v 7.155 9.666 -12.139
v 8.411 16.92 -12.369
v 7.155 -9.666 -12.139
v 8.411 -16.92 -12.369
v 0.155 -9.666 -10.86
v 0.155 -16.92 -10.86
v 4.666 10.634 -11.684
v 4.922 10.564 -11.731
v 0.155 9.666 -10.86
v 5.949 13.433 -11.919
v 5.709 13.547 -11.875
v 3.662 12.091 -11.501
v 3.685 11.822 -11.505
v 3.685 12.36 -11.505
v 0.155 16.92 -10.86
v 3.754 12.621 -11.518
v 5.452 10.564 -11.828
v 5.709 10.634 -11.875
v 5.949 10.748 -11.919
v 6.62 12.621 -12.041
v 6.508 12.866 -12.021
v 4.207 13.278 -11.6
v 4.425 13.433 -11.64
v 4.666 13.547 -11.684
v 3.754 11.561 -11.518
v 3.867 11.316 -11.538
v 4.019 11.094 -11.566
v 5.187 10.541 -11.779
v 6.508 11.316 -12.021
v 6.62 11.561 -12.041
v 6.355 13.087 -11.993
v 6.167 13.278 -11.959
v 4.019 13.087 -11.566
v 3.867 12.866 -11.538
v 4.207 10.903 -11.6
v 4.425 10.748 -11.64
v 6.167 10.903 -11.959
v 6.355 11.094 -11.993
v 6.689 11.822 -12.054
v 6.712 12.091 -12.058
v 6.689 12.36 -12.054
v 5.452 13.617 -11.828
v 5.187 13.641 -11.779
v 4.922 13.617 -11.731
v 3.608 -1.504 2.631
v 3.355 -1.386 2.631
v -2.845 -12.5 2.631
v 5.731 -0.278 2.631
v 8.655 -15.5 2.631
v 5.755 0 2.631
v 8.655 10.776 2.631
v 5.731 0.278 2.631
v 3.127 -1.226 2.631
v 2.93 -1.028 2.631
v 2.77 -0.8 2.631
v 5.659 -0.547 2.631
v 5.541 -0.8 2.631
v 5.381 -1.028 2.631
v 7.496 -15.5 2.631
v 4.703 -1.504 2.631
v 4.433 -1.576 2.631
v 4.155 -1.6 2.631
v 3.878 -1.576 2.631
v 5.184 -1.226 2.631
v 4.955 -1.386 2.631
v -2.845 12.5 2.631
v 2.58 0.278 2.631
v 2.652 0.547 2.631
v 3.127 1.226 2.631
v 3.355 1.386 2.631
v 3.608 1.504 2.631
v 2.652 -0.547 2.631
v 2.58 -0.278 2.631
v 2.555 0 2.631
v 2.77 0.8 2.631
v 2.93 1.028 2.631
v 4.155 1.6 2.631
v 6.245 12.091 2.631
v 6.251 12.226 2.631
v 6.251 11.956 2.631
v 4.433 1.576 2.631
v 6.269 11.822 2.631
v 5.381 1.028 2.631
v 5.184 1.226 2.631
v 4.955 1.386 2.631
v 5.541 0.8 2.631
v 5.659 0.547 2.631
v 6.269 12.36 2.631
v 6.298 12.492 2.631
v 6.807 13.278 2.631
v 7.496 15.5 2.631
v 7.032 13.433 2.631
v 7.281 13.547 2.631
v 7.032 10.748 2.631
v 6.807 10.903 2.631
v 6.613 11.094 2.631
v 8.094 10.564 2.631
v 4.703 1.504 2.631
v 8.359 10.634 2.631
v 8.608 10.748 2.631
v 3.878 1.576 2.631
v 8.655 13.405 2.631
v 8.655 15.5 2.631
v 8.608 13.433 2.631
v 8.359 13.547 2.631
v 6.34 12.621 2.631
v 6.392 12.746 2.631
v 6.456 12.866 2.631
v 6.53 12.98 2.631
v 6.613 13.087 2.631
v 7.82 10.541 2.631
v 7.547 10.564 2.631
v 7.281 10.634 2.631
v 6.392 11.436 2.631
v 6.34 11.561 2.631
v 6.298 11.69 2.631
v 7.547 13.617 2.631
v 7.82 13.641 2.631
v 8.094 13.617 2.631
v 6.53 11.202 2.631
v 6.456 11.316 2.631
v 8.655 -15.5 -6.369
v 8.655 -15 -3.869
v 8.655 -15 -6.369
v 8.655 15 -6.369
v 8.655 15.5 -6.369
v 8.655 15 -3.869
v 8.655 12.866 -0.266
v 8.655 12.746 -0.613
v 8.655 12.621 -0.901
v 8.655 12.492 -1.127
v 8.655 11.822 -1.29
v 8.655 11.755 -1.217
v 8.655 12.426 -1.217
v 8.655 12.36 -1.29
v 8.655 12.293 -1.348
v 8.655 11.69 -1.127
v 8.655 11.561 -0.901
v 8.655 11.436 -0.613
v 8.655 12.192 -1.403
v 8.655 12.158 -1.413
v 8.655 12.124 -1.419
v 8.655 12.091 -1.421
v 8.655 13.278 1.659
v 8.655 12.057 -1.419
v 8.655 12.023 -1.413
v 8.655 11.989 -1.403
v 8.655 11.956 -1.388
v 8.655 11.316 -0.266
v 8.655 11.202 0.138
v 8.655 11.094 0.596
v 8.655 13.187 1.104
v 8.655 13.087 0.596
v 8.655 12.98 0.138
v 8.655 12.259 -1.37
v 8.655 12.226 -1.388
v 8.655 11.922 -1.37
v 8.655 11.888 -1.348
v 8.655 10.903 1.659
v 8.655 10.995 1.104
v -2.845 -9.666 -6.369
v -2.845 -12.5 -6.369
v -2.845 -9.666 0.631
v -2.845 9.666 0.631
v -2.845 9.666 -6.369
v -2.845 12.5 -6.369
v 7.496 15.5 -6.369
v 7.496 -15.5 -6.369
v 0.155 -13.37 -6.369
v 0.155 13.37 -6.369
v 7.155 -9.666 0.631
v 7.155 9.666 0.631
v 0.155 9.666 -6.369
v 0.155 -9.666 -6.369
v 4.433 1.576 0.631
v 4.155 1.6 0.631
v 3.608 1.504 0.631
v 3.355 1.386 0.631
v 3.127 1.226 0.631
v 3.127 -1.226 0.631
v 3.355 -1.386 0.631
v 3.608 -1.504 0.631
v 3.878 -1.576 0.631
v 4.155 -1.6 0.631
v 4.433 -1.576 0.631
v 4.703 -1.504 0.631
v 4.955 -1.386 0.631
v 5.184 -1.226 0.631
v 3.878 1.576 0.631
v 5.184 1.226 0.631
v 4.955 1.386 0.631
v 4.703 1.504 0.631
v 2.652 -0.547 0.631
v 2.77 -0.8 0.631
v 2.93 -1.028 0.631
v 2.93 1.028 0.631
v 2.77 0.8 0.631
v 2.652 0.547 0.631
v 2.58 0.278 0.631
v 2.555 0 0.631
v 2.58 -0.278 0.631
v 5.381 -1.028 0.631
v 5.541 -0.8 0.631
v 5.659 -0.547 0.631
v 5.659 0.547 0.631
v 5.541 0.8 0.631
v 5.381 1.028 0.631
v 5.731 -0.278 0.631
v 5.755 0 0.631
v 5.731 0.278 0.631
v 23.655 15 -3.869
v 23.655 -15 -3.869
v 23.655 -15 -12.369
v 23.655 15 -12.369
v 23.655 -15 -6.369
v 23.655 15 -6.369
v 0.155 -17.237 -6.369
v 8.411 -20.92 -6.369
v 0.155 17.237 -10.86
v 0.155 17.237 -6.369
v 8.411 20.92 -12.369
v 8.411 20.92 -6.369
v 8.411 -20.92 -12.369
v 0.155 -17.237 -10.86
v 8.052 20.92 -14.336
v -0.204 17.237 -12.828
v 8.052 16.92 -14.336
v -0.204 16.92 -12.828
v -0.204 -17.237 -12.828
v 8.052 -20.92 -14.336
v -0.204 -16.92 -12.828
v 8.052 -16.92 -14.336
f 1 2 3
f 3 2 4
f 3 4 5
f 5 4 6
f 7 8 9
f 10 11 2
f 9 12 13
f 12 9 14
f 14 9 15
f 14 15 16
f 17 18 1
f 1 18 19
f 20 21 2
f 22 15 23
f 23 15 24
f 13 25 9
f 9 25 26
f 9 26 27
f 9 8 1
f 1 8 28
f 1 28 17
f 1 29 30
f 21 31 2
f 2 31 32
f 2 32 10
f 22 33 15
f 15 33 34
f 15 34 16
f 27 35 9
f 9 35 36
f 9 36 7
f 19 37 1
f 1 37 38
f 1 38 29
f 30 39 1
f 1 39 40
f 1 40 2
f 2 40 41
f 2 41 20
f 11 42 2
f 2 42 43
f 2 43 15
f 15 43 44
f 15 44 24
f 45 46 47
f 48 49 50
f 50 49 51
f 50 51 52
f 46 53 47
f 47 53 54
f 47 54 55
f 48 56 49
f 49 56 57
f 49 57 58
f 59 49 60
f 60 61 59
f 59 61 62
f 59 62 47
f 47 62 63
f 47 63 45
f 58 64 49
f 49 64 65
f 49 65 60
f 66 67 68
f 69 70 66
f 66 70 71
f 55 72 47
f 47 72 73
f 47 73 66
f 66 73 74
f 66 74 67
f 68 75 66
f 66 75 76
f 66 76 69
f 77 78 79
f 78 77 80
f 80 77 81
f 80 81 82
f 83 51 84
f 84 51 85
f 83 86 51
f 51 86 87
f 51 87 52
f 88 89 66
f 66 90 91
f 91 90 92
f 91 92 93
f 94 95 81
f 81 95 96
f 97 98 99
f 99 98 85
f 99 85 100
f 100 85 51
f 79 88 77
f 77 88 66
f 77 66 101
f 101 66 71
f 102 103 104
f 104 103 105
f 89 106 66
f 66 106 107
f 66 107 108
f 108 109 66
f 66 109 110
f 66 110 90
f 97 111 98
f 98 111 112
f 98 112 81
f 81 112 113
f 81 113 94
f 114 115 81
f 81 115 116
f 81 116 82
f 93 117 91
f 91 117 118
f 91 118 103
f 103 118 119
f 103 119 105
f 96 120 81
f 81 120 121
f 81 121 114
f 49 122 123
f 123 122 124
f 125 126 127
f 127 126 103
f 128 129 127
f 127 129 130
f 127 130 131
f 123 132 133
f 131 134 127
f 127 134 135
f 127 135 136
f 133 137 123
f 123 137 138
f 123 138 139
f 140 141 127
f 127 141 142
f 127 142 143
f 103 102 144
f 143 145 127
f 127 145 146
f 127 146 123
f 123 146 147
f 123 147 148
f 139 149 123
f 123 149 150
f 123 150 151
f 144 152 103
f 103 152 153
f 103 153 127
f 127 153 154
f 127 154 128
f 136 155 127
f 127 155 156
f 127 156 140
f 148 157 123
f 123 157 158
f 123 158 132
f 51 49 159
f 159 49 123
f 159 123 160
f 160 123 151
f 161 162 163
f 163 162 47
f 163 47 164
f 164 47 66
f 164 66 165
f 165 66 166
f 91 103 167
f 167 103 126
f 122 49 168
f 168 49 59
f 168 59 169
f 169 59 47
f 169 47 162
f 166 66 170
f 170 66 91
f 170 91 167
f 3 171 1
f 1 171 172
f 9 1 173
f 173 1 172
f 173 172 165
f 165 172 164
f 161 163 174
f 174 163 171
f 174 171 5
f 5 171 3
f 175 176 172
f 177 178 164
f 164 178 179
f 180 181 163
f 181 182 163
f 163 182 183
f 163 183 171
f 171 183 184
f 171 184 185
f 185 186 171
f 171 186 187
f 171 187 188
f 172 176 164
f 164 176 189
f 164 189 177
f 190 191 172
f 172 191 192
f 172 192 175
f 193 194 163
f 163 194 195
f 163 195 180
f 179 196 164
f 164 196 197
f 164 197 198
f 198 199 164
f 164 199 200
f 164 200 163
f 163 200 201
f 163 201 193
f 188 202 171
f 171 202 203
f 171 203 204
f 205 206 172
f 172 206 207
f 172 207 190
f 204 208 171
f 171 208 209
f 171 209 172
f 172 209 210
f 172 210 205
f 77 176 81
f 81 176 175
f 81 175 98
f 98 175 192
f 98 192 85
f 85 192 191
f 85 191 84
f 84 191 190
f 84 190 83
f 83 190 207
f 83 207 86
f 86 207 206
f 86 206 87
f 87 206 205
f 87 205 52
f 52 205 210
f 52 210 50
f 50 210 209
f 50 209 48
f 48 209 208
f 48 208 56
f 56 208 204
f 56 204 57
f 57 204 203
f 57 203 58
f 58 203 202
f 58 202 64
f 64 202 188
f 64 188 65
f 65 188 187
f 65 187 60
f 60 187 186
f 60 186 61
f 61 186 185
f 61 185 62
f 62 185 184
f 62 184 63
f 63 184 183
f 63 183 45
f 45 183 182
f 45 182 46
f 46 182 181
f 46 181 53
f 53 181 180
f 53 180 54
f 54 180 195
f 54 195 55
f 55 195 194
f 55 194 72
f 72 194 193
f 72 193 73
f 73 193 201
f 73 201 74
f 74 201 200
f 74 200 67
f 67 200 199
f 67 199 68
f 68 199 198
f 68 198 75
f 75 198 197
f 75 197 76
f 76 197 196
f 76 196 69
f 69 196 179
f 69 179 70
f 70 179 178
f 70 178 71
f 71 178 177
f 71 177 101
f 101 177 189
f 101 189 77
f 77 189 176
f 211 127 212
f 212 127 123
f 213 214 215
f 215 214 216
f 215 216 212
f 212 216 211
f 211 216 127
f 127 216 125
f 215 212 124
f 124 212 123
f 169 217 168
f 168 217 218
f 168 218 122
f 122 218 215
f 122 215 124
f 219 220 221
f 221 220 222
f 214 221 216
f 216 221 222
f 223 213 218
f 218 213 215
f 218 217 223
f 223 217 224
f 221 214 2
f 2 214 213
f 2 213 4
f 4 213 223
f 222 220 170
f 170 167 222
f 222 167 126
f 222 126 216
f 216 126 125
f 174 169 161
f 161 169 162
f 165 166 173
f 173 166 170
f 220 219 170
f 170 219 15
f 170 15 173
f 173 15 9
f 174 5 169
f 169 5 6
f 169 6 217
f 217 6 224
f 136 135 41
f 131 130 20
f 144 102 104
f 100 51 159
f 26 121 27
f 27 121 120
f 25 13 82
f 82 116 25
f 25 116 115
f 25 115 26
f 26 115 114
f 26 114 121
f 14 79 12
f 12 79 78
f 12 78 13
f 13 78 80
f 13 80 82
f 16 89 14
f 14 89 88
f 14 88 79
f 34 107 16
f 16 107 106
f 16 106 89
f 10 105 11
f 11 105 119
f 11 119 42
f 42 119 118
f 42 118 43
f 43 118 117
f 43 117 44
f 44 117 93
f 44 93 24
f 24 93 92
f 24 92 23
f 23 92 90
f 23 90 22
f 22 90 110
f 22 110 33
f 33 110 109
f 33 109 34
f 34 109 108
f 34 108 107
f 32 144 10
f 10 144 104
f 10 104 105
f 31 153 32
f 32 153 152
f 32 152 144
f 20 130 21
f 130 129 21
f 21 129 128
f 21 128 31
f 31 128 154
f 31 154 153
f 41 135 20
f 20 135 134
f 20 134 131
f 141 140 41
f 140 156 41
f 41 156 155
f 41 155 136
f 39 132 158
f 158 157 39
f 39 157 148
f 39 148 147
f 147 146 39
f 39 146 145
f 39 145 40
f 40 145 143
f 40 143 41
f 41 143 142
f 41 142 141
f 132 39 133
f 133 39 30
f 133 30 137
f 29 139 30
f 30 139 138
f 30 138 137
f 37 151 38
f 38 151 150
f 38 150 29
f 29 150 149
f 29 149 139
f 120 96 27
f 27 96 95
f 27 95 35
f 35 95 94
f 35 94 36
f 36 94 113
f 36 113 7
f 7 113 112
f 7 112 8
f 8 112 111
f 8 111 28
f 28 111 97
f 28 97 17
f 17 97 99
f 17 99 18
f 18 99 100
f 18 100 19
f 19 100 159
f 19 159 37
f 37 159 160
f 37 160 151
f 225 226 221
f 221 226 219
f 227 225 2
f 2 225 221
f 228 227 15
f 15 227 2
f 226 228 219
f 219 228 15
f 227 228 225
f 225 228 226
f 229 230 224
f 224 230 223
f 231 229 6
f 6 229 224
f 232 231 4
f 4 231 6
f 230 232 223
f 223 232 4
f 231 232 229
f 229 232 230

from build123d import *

# Parameters (mm, degrees)
SKETCH_1_W          = 11.5
SKETCH_1_H          = 9
EXTRUDE_1_DEPTH     = 15.5
CUT_EXTRUDE_1_REACH = 21.904
CUT_EXTRUDE_3_DEPTH = 10
SKETCH_7_R          = 1.6
CUT_EXTRUDE_4_DEPTH = 3.2
SKETCH_9_W          = 15
SKETCH_9_H          = 2.5
EXTRUDE_2_DEPTH     = 15
EXTRUDE_3_DEPTH     = 6
CUT_EXTRUDE_5_DEPTH = 25
SKETCH_12_R         = 1.55
CUT_EXTRUDE_6_DEPTH = 50
EXTRUDE_4_DEPTH     = 2


with BuildPart() as part:
    # 草图1 → 凸台-拉伸1 (new, symmetric)
    with BuildSketch(Plane(origin=(0, 0, 0), x_dir=(1, 0, 0), z_dir=(0, 1, 0))):
        with Locations((2.905437314, 1.868632411)):
            Rectangle(SKETCH_1_W, SKETCH_1_H)
    extrude(amount=EXTRUDE_1_DEPTH, both=True)

    # 草图3 → 切除-拉伸1 (cut, up to next)
    with BuildSketch(Plane.XY.offset(2.631367589), mode=Mode.PRIVATE) as cut_extrude_1_sk1:
        Polygon((-2.844562686, 15.5), (-2.844562686, 12.5), (7.496374606, 15.5), align=None)
    cut_extrude_1_tool1 = extrude(cut_extrude_1_sk1.sketch, amount=-CUT_EXTRUDE_1_REACH, mode=Mode.PRIVATE) & part.part
    # 草图3 → 切除-拉伸1 (cut, up to next)
    with BuildSketch(Plane.XY.offset(2.631367589), mode=Mode.PRIVATE) as cut_extrude_1_sk2:
        Polygon((7.496374606, -15.5), (-2.844562686, -15.5), (-2.844562686, -12.5), align=None)
    cut_extrude_1_tool2 = extrude(cut_extrude_1_sk2.sketch, amount=-CUT_EXTRUDE_1_REACH, mode=Mode.PRIVATE) & part.part
    add(cut_extrude_1_tool1.solids().sort_by_distance((0.602416, 14.5, 2.631368))[0], mode=Mode.SUBTRACT)
    add(cut_extrude_1_tool2.solids().sort_by_distance((0.602416, -14.5, 2.631368))[0], mode=Mode.SUBTRACT)

    # 草图6 → 切除-拉伸3 (cut)
    with BuildSketch(Plane.ZY.offset(2.844562686)):
        Polygon((0.631367589, 9.665706569), (-6.368632411, 9.665706569), (-11.26294246, 9.665706569), (-11.26294246, -9.665706569), (-6.368632411, -9.665706569), (0.631367589, -9.665706569), align=None)
    extrude(amount=-CUT_EXTRUDE_3_DEPTH, mode=Mode.SUBTRACT)

    # 草图7 → 切除-拉伸4 (cut)
    with BuildSketch(Plane(origin=(0, 0, 0.631367589), x_dir=(-1, 0, 0), z_dir=(0, 0, -1))):
        with Locations(Location((-4.155437314, 0, 0), (0, 0, 90))):
            Circle(SKETCH_7_R)
    extrude(amount=-CUT_EXTRUDE_4_DEPTH, mode=Mode.SUBTRACT)

    # 草图9 → 凸台-拉伸2 (add, symmetric)
    with BuildSketch(Plane(origin=(0, 0, 0), x_dir=(1, 0, 0), z_dir=(0, 1, 0))):
        with Locations((16.155437314, 5.118632411)):
            Rectangle(SKETCH_9_W, SKETCH_9_H)
    extrude(amount=EXTRUDE_2_DEPTH, both=True)

    # 草图10 → 凸台-拉伸3 (add)
    with BuildSketch(Plane(origin=(0, 0, -6.368632411), x_dir=(-1, 0, 0), z_dir=(0, 0, -1))):
        Polygon((2.844562686, 9.665706569), (2.844562686, 15.89839332), (-8.411310933, 20.920270748), (-23.655437314, 15), (-23.655437314, -15), (-8.411310933, -20.920270748), (2.844562686, -15.89839332), (2.844562686, -9.665706569), (-7.155437314, -9.665706569), (-7.155437314, 9.665706569), align=None)
    extrude(amount=EXTRUDE_3_DEPTH)

    # 草图11 → 切除-拉伸5 (cut, symmetric)
    with BuildSketch(Plane(origin=(0, 0, 0), x_dir=(1, 0, 0), z_dir=(0, 1, 0))):
        Polygon((8.411310933, 12.368632411), (0.155437314, 10.860086612), (0.155437314, 6.368632411), (-2.844562686, 6.368632411), (-2.844562686, 10.368632411), (-2.844562686, 12.368632411), align=None)
    extrude(amount=CUT_EXTRUDE_5_DEPTH, both=True, mode=Mode.SUBTRACT)

    # 草图12 → 切除-拉伸6 (cut)
    with BuildSketch(Plane(origin=(-1.915261303, 0, -10.481720391), x_dir=(-0.9837127141080302, 0, 0.17974786814372187), z_dir=(-0.17974786814372187, 0, -0.9837127141080303))):
        with Locations((-7.219941257, 12.090668535)):
            Circle(SKETCH_12_R)
    extrude(amount=-CUT_EXTRUDE_6_DEPTH, mode=Mode.SUBTRACT)

    # 草图13 → 凸台-拉伸4 (add)
    with BuildSketch(Plane(origin=(-1.915261303, 0, -10.481720391), x_dir=(-0.9837127141080303, 0, 0.17974786814372185), z_dir=(-0.17974786814372182, 0, -0.9837127141080302))):
        Polygon((-10.497548815, 20.920270748), (-10.497548815, 16.920270748), (-2.104983078, 16.920270748), (-2.104983078, 17.23686182), align=None)
        Polygon((-10.497548815, -20.920270748), (-10.497548815, -16.920270748), (-2.104983078, -16.920270748), (-2.104983078, -17.23686182), align=None)
    extrude(amount=EXTRUDE_4_DEPTH)


solid = part.part
